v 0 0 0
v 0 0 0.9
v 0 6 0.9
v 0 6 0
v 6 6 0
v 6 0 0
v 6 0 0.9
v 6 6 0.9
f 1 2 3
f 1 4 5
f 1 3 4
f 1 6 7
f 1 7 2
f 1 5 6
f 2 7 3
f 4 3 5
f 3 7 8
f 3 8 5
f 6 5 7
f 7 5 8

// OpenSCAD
/* Warning, this is a very basic generator with a lot of approximation 
input data : [VTLA, 6SX, 6x6x0.9mm, 44, , D, C04-00157D]
generated by com.zoubworld.electronics.cad.model3d.Basic
Date : Sun Feb 15 10:50:48 CET 2026
*/

//body
color("black")
translate([0,0,0])
cube([6.0,6.0,0.9], center=false);
